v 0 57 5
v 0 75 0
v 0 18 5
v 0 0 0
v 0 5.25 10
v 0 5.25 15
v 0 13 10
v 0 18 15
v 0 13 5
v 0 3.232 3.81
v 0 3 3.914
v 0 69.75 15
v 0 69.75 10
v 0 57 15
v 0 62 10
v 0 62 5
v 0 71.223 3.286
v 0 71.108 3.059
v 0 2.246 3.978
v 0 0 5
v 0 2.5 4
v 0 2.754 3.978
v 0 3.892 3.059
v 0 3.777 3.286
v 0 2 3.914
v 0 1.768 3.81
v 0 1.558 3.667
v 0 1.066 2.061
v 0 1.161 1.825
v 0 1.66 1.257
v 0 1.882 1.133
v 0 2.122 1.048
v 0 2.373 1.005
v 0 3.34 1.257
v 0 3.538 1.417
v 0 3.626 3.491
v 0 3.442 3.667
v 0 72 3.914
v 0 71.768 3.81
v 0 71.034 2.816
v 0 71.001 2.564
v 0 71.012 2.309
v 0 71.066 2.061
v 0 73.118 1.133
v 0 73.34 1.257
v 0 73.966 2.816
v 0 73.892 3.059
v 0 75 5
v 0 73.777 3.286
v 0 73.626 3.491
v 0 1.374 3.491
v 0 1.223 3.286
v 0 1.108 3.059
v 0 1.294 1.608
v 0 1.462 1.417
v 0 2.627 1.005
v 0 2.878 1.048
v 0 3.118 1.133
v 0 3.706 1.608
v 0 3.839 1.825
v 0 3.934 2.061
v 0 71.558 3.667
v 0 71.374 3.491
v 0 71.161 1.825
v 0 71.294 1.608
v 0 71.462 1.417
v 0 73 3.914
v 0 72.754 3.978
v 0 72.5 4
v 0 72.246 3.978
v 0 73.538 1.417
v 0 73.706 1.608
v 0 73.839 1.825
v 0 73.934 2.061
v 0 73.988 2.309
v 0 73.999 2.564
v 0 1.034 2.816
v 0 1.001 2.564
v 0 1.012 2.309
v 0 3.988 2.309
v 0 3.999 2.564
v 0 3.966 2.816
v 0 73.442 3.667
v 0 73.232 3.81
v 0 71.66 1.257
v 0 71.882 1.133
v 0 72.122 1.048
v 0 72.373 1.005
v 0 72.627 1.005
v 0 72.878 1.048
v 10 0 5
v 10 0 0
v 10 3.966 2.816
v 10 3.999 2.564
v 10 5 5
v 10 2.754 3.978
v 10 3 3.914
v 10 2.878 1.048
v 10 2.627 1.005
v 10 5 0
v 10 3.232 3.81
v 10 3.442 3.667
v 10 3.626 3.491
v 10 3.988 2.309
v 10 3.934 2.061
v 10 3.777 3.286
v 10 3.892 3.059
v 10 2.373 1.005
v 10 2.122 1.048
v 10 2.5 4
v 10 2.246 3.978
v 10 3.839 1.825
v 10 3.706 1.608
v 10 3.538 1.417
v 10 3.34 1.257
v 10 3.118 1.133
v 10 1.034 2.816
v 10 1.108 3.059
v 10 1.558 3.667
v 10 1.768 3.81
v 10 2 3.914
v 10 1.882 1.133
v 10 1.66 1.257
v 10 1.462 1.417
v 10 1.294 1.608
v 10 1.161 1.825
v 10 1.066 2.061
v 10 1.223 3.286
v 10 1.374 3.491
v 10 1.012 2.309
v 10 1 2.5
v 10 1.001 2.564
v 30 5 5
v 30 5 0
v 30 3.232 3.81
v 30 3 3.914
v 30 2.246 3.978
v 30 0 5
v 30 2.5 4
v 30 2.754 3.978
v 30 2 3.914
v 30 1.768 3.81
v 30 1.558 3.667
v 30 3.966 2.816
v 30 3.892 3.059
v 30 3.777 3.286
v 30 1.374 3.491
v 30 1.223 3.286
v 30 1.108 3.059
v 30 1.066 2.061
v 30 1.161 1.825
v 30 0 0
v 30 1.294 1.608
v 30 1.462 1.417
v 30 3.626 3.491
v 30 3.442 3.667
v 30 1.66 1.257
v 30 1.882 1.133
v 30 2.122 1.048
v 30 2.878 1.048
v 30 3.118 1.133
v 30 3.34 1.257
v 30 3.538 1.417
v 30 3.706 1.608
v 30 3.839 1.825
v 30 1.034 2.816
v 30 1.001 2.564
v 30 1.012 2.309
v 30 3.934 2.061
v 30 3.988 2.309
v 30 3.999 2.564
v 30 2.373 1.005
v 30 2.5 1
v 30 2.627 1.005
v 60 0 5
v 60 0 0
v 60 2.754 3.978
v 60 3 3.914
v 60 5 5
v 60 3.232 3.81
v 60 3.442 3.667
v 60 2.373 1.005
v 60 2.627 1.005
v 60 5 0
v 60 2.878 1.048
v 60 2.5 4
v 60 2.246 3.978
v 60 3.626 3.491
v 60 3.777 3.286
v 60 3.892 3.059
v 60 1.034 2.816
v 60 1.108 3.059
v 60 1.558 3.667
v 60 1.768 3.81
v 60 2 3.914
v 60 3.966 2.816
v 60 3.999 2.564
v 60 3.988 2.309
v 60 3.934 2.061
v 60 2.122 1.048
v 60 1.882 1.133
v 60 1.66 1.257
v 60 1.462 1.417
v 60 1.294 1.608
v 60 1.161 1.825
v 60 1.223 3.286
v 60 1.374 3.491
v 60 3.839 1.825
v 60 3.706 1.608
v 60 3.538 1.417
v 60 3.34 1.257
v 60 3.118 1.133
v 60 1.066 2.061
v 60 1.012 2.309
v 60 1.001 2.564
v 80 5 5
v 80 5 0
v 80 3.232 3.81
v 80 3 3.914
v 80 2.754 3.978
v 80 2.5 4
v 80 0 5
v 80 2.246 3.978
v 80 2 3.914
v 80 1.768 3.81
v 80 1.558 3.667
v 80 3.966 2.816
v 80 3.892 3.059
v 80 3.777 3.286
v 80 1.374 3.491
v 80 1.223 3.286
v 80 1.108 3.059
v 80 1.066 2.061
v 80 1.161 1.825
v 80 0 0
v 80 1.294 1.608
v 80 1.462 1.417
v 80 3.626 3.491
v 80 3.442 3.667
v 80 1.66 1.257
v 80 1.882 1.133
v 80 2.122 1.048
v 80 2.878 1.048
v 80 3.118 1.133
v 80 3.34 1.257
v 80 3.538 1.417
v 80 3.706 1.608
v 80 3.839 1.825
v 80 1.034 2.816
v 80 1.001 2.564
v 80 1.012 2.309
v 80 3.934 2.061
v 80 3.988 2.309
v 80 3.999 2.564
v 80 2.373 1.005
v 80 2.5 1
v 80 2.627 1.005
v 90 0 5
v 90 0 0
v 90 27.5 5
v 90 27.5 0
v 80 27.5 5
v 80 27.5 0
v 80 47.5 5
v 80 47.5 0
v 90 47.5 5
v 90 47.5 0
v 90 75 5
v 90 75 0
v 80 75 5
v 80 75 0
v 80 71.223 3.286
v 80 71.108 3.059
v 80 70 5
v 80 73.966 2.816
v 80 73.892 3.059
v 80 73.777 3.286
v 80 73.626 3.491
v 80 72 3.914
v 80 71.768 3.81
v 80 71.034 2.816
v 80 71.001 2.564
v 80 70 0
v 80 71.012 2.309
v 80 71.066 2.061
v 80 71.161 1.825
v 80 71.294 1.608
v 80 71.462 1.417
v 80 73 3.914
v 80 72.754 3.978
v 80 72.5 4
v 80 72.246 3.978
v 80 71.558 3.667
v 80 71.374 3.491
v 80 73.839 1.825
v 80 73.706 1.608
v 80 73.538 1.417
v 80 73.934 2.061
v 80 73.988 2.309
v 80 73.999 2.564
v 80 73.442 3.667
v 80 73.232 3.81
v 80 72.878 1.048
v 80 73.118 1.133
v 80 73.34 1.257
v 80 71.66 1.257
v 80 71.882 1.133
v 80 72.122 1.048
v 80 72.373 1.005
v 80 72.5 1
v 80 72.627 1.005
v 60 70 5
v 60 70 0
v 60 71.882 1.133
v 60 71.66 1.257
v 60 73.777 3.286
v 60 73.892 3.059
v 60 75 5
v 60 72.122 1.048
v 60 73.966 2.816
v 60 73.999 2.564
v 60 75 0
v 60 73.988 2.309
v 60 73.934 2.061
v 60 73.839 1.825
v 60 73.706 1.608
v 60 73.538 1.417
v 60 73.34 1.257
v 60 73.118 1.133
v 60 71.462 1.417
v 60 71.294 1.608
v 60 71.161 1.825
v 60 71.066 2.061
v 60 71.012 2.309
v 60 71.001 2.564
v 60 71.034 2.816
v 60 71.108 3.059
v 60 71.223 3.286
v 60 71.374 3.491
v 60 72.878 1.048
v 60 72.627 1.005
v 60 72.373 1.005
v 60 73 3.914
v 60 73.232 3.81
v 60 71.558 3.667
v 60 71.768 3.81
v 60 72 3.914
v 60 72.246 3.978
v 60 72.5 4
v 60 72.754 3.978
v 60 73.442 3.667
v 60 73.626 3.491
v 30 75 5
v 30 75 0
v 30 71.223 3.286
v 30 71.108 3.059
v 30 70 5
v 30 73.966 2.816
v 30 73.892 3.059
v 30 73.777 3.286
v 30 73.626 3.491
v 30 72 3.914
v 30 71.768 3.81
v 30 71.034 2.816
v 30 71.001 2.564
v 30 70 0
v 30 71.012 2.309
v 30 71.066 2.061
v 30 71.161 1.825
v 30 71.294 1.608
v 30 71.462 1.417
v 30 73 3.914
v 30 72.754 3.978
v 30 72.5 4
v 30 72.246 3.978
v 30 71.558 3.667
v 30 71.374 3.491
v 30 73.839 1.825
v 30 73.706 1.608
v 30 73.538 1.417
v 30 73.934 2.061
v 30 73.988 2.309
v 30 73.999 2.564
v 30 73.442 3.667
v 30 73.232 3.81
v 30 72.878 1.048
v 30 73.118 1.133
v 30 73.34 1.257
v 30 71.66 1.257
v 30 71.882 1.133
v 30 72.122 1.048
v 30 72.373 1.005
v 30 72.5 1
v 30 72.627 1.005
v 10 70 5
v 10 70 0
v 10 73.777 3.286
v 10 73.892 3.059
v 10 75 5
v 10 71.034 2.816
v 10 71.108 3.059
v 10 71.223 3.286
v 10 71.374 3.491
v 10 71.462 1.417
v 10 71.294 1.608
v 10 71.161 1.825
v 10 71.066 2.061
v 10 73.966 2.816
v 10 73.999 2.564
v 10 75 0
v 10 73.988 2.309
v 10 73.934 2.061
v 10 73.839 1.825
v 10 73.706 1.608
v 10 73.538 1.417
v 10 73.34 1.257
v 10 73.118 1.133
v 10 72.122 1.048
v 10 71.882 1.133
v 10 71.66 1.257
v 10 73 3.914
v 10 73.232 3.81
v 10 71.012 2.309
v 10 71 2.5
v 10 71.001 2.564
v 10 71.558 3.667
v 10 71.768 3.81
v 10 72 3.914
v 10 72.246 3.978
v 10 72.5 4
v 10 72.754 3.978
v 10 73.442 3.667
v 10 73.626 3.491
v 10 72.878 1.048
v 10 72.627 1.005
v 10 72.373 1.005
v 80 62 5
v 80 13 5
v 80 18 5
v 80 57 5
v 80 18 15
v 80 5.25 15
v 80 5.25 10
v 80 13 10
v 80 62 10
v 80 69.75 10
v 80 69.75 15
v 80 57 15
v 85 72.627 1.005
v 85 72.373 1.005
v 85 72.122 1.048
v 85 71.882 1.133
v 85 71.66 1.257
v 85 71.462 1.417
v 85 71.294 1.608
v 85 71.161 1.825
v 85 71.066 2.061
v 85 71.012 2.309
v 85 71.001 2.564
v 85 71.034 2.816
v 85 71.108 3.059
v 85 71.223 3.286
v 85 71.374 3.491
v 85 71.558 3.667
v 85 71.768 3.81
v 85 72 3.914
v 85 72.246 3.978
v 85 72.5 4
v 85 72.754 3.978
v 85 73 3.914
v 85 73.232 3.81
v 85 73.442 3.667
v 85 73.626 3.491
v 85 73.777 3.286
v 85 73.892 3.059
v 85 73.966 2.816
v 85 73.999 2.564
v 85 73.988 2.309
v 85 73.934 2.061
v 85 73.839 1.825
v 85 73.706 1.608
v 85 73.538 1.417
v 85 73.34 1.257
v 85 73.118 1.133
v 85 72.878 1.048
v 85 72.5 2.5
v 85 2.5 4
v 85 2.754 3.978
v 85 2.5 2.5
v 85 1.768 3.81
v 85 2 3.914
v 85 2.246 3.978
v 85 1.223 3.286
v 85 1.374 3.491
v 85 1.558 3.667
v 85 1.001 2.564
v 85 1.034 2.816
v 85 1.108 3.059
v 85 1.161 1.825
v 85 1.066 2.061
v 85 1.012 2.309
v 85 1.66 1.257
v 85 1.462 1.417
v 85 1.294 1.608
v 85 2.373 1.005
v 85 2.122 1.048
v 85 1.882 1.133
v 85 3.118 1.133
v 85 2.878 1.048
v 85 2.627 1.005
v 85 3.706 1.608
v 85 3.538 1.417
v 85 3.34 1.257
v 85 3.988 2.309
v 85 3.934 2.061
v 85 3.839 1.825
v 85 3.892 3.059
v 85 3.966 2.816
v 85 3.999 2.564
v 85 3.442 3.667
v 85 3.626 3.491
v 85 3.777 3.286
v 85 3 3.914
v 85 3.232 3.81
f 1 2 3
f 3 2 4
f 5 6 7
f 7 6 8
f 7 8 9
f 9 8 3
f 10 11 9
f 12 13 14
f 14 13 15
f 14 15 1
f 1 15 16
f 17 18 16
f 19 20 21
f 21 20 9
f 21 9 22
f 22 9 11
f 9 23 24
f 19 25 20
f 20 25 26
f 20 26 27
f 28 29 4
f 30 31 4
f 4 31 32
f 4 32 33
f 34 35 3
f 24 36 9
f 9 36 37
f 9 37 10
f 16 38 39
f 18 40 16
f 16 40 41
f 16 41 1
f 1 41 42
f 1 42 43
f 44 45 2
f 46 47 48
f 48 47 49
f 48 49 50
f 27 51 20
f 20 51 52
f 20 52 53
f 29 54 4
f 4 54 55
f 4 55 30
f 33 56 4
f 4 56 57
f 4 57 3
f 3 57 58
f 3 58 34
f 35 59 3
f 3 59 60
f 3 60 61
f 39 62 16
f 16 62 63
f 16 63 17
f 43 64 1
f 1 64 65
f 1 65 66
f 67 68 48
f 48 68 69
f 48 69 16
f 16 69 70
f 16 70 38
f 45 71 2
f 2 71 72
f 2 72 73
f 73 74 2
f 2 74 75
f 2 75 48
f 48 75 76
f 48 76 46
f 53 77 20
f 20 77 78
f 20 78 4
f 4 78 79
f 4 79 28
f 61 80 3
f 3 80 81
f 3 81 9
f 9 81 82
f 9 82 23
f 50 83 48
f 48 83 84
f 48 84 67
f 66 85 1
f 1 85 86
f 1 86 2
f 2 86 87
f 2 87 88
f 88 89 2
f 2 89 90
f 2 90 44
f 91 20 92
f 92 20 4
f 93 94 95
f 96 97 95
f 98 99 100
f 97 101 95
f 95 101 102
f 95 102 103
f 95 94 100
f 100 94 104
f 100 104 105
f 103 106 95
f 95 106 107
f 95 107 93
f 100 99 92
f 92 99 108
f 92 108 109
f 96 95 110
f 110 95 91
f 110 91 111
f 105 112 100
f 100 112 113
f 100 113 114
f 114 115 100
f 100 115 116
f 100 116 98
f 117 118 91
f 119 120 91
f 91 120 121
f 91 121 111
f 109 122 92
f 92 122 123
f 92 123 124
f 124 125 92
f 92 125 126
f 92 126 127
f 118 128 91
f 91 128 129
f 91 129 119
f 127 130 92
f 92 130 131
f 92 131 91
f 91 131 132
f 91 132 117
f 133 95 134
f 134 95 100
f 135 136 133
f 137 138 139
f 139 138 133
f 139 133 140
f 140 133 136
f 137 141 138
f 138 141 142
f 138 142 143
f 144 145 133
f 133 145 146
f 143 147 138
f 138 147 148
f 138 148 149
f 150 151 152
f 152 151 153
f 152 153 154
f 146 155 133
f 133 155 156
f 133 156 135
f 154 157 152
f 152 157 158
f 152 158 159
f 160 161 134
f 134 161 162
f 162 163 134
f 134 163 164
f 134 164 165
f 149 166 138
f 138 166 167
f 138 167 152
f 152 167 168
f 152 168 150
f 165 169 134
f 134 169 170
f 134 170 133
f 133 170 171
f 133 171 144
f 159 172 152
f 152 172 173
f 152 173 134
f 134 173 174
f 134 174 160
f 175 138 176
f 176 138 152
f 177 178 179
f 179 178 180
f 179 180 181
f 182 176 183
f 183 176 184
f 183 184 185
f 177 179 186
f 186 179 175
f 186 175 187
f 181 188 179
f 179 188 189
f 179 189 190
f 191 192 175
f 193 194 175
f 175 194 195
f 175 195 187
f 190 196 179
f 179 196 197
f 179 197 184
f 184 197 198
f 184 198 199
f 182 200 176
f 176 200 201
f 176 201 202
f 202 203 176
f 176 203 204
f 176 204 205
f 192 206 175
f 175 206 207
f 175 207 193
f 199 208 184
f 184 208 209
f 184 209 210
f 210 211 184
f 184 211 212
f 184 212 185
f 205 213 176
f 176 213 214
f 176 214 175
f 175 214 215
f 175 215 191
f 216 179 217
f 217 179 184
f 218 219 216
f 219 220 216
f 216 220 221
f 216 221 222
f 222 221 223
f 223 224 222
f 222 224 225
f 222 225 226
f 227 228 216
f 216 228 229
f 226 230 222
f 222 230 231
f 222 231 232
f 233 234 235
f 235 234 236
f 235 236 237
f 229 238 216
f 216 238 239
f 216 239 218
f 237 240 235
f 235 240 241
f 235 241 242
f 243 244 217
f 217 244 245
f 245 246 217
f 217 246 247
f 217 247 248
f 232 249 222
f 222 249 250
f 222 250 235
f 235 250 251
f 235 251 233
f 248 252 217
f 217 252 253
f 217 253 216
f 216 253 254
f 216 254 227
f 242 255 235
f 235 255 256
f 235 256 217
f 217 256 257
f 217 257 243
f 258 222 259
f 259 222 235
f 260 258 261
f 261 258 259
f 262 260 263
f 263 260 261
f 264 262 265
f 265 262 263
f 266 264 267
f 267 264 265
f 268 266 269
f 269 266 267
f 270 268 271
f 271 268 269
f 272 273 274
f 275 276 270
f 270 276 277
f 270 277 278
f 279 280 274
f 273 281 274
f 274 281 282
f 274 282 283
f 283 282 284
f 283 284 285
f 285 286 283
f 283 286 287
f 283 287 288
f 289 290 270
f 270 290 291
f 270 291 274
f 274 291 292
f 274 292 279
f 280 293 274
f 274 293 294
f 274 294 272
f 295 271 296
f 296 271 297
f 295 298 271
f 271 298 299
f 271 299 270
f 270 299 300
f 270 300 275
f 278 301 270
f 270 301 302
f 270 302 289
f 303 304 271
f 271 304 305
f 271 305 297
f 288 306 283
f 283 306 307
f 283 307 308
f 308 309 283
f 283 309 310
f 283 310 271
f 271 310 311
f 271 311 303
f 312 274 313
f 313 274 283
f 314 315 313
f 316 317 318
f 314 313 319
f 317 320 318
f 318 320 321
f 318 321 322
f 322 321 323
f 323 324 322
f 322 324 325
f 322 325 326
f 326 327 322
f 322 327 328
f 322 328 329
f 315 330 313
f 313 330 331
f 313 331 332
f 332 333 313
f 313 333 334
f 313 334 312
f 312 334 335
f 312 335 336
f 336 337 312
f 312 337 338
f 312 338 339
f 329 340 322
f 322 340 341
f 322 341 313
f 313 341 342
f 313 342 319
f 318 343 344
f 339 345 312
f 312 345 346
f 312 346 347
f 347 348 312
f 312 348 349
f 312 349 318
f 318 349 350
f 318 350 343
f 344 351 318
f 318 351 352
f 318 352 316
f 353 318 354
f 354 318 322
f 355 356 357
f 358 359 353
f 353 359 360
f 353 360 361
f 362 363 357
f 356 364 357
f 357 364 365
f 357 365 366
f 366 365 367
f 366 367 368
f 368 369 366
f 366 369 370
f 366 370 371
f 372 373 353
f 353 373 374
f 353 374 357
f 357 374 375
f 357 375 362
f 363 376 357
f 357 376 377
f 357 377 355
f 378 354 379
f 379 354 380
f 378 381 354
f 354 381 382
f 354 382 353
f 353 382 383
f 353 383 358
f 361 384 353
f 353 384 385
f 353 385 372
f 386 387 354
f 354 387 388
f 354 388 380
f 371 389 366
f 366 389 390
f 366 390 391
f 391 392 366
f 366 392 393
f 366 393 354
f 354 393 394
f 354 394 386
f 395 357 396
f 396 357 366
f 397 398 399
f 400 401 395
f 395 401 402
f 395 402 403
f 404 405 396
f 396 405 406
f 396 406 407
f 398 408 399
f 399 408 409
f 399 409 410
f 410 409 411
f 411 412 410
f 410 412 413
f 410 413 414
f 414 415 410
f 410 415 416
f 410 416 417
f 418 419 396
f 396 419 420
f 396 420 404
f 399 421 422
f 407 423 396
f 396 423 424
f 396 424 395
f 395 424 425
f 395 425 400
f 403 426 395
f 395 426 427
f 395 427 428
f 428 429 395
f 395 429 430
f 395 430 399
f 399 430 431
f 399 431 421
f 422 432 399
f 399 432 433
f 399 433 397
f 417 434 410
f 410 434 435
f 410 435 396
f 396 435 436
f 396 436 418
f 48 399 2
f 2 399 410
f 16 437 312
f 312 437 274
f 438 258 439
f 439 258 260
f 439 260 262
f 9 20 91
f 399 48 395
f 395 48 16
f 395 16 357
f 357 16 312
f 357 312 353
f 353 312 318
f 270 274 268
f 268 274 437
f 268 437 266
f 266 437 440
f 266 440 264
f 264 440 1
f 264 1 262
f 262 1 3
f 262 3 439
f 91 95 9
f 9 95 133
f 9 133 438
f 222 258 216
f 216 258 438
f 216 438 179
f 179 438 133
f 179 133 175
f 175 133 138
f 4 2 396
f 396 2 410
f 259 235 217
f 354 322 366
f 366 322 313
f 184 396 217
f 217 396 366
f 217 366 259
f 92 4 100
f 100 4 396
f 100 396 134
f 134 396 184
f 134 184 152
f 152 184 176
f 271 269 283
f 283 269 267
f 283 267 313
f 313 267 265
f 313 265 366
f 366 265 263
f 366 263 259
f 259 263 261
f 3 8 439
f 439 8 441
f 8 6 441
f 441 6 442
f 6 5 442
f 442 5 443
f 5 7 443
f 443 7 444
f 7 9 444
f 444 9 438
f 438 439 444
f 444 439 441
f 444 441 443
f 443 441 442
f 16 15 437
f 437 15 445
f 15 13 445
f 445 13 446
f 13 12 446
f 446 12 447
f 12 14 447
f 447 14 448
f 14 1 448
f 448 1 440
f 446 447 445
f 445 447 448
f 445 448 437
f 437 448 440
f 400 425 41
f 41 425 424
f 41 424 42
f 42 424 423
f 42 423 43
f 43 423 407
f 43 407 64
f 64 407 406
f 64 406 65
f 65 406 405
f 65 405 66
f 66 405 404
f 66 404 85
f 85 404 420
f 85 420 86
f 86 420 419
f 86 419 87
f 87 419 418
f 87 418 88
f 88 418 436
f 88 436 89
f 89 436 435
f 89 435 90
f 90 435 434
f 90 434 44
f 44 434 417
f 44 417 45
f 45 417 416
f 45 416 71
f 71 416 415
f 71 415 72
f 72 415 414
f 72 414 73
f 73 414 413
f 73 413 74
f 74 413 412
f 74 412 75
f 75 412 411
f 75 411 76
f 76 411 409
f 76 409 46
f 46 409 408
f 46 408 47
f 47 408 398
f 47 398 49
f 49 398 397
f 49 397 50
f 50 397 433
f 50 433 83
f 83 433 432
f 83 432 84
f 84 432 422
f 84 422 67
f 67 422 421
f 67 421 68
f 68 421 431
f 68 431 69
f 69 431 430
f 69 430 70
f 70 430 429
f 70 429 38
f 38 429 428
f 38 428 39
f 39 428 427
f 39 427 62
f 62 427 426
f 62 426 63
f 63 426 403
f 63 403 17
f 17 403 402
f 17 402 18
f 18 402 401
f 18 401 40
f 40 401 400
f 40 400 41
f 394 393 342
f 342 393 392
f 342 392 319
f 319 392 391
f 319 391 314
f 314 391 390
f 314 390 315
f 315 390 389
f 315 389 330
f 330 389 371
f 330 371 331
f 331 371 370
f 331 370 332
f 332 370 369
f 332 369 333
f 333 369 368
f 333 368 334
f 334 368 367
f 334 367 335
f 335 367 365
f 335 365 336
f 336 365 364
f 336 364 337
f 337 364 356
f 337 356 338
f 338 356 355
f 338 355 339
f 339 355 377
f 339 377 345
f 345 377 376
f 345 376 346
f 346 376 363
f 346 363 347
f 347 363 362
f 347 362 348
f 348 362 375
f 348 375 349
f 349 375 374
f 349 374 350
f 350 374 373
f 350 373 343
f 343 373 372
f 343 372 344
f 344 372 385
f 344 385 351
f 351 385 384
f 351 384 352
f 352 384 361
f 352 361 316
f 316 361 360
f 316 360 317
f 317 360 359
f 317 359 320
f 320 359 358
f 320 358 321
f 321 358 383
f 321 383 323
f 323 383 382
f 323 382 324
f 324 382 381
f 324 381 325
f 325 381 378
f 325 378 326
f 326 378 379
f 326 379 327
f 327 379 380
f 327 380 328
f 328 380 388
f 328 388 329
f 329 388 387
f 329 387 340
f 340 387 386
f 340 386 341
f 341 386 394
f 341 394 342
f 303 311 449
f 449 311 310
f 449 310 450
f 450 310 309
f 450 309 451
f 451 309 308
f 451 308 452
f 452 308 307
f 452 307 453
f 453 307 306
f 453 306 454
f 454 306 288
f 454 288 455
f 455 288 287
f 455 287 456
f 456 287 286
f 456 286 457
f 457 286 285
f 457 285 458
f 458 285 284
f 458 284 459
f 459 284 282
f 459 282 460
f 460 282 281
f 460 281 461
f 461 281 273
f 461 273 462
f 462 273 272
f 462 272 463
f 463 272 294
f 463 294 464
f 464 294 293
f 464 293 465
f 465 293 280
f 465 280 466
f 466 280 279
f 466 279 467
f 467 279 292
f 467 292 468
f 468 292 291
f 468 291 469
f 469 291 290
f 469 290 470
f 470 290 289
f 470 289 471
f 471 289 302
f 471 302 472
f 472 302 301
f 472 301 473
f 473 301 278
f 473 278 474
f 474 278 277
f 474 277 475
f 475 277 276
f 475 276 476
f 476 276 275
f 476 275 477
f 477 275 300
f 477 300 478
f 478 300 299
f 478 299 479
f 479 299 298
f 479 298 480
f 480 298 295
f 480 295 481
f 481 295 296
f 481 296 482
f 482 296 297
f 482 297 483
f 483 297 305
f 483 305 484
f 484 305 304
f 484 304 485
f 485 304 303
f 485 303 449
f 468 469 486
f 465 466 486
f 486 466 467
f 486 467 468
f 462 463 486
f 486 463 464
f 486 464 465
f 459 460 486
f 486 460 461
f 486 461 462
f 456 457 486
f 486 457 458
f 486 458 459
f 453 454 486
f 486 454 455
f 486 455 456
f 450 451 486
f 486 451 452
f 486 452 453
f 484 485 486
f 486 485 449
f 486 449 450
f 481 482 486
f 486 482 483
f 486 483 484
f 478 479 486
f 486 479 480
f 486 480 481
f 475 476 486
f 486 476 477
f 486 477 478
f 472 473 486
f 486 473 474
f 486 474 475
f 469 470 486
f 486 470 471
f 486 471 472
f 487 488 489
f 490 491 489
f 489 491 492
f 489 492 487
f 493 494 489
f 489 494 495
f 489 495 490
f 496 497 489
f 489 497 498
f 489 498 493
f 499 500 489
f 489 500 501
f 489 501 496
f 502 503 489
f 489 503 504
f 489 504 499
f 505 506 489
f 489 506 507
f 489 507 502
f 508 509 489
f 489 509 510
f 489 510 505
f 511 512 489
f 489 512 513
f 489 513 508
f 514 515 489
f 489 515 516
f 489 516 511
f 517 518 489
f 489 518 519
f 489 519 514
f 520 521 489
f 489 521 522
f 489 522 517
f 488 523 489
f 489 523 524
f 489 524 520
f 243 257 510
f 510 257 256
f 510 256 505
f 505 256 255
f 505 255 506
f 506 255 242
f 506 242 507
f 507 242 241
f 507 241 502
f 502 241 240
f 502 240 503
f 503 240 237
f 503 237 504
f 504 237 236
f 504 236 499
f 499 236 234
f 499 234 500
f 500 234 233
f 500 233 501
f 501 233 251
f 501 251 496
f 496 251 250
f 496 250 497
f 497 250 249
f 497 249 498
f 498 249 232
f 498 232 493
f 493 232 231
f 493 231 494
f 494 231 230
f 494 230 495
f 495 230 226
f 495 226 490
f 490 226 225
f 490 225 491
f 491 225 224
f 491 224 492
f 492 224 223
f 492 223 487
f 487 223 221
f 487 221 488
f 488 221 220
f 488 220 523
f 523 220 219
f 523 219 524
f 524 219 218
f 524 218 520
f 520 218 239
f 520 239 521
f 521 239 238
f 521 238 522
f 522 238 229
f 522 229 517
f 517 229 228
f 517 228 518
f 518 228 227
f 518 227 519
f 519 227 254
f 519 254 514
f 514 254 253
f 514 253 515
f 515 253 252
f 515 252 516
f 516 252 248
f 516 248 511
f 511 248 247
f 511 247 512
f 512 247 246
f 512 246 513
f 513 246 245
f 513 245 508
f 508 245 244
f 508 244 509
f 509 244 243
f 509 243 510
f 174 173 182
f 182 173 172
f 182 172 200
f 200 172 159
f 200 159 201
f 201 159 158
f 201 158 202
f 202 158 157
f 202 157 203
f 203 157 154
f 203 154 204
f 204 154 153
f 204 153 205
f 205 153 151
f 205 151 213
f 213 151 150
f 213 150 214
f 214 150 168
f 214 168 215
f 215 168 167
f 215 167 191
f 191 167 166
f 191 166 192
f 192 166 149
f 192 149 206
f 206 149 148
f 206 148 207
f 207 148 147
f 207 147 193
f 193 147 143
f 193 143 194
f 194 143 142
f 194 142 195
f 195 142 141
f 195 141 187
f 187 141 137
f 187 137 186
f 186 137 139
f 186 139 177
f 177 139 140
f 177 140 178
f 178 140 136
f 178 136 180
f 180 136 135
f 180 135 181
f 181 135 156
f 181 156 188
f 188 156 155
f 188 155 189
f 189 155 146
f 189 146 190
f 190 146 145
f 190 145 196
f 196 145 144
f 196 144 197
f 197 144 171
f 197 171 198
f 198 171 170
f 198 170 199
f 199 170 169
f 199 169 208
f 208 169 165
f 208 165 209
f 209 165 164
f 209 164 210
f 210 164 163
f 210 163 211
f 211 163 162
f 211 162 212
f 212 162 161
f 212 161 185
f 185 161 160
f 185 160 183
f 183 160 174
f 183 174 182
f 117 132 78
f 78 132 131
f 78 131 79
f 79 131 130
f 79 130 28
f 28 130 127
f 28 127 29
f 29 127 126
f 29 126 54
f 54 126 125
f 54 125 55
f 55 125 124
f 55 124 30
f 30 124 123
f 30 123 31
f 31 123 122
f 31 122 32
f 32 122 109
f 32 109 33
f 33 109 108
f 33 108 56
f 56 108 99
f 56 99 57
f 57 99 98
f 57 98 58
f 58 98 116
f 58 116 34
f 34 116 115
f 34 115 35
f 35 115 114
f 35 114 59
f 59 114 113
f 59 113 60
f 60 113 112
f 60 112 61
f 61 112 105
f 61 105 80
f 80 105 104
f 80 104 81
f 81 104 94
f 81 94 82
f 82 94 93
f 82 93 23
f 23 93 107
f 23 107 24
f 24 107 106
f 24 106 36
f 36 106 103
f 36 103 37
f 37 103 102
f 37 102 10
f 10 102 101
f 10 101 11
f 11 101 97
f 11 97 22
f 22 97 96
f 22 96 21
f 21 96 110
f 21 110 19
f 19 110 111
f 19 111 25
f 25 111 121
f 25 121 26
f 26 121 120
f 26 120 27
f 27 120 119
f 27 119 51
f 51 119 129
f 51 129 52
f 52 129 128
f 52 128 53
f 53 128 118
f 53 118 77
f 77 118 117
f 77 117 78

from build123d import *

# Parameters (mm, degrees)
BOSS_EXTRU_1_DEPTH      = 5
BOSS_EXTRU_2_DEPTH      = 80
ESQUISSE5_R             = 1.5
ENL_V_MAT_EXTRU_1_DEPTH = 85


with BuildPart() as part:
    # Esquisse1 → Boss.-Extru.1 (new body)
    with BuildSketch(Plane.XY):
        Polygon((90, 47.5), (80, 47.5), (80, 27.5), (90, 27.5), (90, 0), (80, 0), (80, 5), (60, 5), (60, 0), (30, 0), (30, 5), (10, 5), (10, 0), (0, 0), (0, 75), (10, 75), (10, 70), (30, 70), (30, 75), (60, 75), (60, 70), (80, 70), (80, 75), (90, 75), align=None)
    extrude(amount=BOSS_EXTRU_1_DEPTH)

    # Esquisse3 → Boss.-Extru.2 (add)
    with BuildSketch(Plane.ZY):
        Polygon((5, 18), (15, 18), (15, 5.25), (10, 5.25), (10, 13), (5, 13), align=None)
        Polygon((5, 62), (5, 57), (15, 57), (15, 69.75), (10, 69.75), (10, 62), align=None)
    extrude(amount=-BOSS_EXTRU_2_DEPTH)

    # Esquisse5 → Enlèv. mat.-Extru.1 (cut)
    with BuildSketch(Plane.ZY):
        with Locations((2.5, 2.5)):
            Circle(ESQUISSE5_R)
        with Locations((2.5, 72.5)):
            Circle(ESQUISSE5_R)
    extrude(amount=-ENL_V_MAT_EXTRU_1_DEPTH, mode=Mode.SUBTRACT)


solid = part.part
